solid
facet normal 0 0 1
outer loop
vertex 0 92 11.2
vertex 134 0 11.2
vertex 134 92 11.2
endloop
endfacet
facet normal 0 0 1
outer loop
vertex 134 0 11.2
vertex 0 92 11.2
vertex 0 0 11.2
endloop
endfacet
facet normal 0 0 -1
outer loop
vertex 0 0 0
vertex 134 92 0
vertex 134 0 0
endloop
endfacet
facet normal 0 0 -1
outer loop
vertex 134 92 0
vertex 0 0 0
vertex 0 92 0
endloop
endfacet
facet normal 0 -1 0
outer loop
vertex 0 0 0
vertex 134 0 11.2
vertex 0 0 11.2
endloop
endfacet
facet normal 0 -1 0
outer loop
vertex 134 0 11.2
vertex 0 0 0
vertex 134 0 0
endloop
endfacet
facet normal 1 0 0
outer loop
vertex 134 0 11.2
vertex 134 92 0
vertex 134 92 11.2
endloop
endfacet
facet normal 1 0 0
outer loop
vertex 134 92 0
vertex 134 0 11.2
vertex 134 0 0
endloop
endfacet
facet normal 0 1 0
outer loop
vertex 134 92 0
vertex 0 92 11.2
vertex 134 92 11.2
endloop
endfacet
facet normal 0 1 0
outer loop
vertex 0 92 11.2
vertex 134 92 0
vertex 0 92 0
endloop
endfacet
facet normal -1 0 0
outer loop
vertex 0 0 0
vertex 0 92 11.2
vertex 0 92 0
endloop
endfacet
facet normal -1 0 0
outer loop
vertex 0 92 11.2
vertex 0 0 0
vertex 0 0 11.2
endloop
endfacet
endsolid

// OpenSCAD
// Opentrons Aluminum Flat Bottom Plate
// loadName: opentrons_aluminum_flat_bottom_plate
// Auto-generated by labware_to_stl.py from Opentrons V2 labware definition

$fn = 64;

difference() {
    // ── Labware body ──────────────────────────────────────────────
    cube([134.0000, 92.0000, 11.2000]);

    // ── Well cutouts ──────────────────────────────────────────────
}
